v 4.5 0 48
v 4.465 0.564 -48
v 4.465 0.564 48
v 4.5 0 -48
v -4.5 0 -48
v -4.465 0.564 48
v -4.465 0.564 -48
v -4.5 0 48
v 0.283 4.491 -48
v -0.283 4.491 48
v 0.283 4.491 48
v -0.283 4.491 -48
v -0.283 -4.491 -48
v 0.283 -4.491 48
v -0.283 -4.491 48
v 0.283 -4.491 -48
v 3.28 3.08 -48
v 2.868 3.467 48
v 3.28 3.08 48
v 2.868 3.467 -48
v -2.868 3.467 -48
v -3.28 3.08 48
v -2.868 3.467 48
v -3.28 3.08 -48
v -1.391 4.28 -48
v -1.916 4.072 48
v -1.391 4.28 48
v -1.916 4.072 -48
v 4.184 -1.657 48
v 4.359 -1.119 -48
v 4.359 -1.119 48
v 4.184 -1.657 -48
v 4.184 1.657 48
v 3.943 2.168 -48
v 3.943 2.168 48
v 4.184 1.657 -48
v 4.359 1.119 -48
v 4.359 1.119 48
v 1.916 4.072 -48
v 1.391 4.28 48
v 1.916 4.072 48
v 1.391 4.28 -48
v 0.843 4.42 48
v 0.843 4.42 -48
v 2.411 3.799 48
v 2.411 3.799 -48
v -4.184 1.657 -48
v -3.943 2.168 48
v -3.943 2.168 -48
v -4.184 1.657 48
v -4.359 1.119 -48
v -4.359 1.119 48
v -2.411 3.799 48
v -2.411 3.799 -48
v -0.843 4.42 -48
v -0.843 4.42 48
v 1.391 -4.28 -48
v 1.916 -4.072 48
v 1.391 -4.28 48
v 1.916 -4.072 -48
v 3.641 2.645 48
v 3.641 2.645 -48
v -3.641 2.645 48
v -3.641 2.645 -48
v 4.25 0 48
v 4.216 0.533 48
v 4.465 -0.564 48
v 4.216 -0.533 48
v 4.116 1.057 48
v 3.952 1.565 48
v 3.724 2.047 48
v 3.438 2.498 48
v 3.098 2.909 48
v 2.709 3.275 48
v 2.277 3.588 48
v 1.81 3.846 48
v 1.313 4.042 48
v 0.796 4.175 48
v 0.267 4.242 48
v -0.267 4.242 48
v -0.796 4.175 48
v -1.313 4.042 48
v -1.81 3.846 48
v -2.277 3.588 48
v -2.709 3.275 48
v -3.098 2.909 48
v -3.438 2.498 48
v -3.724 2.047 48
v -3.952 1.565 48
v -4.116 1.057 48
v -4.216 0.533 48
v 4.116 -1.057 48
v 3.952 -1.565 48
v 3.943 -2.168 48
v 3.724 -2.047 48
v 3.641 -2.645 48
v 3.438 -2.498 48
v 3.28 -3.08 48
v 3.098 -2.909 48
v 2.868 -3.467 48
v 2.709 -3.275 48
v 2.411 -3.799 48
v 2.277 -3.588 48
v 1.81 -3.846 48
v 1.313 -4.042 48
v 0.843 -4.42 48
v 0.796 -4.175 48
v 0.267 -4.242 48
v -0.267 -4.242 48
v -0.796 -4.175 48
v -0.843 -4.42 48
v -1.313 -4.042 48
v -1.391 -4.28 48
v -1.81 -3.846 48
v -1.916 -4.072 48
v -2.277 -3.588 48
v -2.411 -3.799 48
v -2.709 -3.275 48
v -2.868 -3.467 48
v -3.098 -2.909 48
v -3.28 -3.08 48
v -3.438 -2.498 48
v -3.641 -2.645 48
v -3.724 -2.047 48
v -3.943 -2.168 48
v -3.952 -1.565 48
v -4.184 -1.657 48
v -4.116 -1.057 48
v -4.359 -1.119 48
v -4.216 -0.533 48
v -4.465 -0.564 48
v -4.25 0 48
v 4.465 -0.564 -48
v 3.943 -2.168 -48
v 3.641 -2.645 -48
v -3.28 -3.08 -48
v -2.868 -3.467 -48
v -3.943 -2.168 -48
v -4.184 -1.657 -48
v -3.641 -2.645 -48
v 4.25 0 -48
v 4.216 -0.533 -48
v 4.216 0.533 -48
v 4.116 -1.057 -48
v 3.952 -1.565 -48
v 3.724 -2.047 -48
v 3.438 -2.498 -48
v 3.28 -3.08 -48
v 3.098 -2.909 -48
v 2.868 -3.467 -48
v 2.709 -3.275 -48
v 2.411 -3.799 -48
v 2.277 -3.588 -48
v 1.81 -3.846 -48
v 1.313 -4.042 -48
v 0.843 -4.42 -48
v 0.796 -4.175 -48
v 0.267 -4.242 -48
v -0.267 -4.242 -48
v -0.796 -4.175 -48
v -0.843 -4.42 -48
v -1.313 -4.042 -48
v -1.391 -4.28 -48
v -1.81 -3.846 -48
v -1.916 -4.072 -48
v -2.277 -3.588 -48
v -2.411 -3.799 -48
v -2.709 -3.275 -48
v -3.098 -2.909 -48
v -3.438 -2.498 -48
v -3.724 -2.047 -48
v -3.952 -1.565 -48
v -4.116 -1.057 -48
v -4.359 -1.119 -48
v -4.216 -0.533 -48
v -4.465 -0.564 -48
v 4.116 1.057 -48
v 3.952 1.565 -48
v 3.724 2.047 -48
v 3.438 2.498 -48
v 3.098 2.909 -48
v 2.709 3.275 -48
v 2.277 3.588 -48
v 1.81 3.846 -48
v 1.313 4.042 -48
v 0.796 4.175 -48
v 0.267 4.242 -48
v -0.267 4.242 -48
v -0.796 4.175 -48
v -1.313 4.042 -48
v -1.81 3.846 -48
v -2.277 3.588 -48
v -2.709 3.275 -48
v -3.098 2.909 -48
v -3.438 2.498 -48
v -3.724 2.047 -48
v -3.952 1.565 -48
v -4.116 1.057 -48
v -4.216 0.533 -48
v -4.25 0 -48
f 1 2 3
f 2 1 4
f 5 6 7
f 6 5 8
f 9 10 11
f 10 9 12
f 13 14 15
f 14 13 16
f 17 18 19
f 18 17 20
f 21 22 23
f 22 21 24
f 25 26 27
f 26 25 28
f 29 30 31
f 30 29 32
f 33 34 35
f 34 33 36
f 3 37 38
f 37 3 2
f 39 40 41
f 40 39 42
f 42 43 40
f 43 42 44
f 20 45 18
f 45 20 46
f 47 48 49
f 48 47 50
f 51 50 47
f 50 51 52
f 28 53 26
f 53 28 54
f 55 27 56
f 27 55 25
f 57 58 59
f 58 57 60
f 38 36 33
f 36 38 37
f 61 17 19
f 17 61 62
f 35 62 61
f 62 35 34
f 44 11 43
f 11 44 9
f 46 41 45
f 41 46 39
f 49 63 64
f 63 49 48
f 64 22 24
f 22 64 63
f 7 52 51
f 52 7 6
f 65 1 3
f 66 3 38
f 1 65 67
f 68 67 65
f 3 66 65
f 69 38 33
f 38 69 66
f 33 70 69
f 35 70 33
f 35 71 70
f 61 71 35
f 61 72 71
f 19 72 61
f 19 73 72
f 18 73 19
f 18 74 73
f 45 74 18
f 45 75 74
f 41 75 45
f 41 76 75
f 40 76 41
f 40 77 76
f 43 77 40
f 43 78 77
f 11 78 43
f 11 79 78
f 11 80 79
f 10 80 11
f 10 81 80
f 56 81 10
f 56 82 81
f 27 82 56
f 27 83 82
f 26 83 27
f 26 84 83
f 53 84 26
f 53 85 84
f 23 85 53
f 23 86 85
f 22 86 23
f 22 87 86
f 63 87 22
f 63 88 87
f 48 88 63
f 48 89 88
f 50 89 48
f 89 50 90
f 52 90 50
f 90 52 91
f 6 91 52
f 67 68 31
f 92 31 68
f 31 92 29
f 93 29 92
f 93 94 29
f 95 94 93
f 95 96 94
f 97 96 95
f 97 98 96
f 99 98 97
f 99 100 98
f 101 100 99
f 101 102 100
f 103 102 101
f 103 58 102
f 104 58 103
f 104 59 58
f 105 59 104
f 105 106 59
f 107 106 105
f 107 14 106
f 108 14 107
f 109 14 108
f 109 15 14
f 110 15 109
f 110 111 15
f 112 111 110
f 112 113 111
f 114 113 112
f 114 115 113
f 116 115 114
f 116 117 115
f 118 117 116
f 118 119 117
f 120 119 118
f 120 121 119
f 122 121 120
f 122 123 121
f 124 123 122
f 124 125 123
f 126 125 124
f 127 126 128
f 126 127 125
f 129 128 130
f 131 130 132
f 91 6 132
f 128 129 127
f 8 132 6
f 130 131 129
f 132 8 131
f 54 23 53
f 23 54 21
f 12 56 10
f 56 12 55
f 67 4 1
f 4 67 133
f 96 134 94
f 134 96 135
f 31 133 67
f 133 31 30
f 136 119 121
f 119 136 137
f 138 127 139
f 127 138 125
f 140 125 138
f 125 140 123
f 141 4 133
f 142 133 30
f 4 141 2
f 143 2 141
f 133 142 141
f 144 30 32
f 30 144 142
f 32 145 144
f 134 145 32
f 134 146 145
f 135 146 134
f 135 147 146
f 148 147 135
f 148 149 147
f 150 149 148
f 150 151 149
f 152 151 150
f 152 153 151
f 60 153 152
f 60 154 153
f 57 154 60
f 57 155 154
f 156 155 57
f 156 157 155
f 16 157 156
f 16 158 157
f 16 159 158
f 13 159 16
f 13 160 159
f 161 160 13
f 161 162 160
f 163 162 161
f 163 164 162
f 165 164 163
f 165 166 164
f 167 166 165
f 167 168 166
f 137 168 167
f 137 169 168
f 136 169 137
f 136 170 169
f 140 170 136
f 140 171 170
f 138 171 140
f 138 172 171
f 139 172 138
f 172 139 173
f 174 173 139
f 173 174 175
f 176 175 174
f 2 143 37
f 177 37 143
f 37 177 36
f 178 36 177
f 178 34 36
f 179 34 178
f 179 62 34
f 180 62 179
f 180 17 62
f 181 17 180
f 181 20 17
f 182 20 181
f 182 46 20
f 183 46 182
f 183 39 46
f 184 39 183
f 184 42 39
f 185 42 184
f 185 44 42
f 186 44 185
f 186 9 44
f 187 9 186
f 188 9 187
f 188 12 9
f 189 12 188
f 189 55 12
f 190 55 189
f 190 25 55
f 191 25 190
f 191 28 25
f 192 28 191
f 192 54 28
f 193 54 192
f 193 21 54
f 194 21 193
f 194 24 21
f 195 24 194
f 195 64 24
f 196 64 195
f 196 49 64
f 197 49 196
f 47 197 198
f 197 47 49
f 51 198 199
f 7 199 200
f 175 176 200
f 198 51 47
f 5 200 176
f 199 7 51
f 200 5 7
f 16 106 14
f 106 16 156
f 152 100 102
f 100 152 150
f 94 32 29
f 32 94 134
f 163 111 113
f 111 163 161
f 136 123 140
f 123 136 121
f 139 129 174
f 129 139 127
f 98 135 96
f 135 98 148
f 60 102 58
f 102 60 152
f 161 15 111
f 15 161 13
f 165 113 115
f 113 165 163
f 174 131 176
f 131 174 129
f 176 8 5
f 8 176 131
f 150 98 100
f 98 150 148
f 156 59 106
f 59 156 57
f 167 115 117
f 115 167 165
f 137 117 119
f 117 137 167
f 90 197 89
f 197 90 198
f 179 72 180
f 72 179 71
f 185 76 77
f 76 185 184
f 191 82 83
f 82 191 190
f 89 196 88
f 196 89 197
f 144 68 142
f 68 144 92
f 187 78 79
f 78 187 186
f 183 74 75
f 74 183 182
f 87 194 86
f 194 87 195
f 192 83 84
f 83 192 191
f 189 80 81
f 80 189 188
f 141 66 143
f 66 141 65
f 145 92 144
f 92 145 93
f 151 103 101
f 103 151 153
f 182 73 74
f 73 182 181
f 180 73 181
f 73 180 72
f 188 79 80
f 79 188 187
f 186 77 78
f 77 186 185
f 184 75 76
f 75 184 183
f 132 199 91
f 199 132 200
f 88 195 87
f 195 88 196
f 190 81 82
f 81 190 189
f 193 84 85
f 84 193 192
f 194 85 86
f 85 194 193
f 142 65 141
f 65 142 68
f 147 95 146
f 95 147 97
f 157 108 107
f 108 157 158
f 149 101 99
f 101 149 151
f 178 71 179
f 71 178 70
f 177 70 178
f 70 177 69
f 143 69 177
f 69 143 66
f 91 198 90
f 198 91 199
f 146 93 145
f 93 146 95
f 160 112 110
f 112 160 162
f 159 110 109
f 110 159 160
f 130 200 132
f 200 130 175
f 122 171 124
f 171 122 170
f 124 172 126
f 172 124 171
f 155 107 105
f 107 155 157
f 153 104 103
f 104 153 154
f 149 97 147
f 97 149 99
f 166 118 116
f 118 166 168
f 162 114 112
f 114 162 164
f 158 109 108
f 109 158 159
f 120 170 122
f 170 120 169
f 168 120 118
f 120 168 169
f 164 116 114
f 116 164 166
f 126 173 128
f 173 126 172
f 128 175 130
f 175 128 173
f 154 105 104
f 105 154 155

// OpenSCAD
$fn = 50;


difference() {
	union() {
		translate(v = [0, 0, -48.0000000000]) {
			cylinder(h = 96, r = 4.5000000000);
		}
	}
	union() {
		translate(v = [0, 0, -100.0000000000]) {
			cylinder(h = 200, r = 4.2500000000);
		}
	}
}
